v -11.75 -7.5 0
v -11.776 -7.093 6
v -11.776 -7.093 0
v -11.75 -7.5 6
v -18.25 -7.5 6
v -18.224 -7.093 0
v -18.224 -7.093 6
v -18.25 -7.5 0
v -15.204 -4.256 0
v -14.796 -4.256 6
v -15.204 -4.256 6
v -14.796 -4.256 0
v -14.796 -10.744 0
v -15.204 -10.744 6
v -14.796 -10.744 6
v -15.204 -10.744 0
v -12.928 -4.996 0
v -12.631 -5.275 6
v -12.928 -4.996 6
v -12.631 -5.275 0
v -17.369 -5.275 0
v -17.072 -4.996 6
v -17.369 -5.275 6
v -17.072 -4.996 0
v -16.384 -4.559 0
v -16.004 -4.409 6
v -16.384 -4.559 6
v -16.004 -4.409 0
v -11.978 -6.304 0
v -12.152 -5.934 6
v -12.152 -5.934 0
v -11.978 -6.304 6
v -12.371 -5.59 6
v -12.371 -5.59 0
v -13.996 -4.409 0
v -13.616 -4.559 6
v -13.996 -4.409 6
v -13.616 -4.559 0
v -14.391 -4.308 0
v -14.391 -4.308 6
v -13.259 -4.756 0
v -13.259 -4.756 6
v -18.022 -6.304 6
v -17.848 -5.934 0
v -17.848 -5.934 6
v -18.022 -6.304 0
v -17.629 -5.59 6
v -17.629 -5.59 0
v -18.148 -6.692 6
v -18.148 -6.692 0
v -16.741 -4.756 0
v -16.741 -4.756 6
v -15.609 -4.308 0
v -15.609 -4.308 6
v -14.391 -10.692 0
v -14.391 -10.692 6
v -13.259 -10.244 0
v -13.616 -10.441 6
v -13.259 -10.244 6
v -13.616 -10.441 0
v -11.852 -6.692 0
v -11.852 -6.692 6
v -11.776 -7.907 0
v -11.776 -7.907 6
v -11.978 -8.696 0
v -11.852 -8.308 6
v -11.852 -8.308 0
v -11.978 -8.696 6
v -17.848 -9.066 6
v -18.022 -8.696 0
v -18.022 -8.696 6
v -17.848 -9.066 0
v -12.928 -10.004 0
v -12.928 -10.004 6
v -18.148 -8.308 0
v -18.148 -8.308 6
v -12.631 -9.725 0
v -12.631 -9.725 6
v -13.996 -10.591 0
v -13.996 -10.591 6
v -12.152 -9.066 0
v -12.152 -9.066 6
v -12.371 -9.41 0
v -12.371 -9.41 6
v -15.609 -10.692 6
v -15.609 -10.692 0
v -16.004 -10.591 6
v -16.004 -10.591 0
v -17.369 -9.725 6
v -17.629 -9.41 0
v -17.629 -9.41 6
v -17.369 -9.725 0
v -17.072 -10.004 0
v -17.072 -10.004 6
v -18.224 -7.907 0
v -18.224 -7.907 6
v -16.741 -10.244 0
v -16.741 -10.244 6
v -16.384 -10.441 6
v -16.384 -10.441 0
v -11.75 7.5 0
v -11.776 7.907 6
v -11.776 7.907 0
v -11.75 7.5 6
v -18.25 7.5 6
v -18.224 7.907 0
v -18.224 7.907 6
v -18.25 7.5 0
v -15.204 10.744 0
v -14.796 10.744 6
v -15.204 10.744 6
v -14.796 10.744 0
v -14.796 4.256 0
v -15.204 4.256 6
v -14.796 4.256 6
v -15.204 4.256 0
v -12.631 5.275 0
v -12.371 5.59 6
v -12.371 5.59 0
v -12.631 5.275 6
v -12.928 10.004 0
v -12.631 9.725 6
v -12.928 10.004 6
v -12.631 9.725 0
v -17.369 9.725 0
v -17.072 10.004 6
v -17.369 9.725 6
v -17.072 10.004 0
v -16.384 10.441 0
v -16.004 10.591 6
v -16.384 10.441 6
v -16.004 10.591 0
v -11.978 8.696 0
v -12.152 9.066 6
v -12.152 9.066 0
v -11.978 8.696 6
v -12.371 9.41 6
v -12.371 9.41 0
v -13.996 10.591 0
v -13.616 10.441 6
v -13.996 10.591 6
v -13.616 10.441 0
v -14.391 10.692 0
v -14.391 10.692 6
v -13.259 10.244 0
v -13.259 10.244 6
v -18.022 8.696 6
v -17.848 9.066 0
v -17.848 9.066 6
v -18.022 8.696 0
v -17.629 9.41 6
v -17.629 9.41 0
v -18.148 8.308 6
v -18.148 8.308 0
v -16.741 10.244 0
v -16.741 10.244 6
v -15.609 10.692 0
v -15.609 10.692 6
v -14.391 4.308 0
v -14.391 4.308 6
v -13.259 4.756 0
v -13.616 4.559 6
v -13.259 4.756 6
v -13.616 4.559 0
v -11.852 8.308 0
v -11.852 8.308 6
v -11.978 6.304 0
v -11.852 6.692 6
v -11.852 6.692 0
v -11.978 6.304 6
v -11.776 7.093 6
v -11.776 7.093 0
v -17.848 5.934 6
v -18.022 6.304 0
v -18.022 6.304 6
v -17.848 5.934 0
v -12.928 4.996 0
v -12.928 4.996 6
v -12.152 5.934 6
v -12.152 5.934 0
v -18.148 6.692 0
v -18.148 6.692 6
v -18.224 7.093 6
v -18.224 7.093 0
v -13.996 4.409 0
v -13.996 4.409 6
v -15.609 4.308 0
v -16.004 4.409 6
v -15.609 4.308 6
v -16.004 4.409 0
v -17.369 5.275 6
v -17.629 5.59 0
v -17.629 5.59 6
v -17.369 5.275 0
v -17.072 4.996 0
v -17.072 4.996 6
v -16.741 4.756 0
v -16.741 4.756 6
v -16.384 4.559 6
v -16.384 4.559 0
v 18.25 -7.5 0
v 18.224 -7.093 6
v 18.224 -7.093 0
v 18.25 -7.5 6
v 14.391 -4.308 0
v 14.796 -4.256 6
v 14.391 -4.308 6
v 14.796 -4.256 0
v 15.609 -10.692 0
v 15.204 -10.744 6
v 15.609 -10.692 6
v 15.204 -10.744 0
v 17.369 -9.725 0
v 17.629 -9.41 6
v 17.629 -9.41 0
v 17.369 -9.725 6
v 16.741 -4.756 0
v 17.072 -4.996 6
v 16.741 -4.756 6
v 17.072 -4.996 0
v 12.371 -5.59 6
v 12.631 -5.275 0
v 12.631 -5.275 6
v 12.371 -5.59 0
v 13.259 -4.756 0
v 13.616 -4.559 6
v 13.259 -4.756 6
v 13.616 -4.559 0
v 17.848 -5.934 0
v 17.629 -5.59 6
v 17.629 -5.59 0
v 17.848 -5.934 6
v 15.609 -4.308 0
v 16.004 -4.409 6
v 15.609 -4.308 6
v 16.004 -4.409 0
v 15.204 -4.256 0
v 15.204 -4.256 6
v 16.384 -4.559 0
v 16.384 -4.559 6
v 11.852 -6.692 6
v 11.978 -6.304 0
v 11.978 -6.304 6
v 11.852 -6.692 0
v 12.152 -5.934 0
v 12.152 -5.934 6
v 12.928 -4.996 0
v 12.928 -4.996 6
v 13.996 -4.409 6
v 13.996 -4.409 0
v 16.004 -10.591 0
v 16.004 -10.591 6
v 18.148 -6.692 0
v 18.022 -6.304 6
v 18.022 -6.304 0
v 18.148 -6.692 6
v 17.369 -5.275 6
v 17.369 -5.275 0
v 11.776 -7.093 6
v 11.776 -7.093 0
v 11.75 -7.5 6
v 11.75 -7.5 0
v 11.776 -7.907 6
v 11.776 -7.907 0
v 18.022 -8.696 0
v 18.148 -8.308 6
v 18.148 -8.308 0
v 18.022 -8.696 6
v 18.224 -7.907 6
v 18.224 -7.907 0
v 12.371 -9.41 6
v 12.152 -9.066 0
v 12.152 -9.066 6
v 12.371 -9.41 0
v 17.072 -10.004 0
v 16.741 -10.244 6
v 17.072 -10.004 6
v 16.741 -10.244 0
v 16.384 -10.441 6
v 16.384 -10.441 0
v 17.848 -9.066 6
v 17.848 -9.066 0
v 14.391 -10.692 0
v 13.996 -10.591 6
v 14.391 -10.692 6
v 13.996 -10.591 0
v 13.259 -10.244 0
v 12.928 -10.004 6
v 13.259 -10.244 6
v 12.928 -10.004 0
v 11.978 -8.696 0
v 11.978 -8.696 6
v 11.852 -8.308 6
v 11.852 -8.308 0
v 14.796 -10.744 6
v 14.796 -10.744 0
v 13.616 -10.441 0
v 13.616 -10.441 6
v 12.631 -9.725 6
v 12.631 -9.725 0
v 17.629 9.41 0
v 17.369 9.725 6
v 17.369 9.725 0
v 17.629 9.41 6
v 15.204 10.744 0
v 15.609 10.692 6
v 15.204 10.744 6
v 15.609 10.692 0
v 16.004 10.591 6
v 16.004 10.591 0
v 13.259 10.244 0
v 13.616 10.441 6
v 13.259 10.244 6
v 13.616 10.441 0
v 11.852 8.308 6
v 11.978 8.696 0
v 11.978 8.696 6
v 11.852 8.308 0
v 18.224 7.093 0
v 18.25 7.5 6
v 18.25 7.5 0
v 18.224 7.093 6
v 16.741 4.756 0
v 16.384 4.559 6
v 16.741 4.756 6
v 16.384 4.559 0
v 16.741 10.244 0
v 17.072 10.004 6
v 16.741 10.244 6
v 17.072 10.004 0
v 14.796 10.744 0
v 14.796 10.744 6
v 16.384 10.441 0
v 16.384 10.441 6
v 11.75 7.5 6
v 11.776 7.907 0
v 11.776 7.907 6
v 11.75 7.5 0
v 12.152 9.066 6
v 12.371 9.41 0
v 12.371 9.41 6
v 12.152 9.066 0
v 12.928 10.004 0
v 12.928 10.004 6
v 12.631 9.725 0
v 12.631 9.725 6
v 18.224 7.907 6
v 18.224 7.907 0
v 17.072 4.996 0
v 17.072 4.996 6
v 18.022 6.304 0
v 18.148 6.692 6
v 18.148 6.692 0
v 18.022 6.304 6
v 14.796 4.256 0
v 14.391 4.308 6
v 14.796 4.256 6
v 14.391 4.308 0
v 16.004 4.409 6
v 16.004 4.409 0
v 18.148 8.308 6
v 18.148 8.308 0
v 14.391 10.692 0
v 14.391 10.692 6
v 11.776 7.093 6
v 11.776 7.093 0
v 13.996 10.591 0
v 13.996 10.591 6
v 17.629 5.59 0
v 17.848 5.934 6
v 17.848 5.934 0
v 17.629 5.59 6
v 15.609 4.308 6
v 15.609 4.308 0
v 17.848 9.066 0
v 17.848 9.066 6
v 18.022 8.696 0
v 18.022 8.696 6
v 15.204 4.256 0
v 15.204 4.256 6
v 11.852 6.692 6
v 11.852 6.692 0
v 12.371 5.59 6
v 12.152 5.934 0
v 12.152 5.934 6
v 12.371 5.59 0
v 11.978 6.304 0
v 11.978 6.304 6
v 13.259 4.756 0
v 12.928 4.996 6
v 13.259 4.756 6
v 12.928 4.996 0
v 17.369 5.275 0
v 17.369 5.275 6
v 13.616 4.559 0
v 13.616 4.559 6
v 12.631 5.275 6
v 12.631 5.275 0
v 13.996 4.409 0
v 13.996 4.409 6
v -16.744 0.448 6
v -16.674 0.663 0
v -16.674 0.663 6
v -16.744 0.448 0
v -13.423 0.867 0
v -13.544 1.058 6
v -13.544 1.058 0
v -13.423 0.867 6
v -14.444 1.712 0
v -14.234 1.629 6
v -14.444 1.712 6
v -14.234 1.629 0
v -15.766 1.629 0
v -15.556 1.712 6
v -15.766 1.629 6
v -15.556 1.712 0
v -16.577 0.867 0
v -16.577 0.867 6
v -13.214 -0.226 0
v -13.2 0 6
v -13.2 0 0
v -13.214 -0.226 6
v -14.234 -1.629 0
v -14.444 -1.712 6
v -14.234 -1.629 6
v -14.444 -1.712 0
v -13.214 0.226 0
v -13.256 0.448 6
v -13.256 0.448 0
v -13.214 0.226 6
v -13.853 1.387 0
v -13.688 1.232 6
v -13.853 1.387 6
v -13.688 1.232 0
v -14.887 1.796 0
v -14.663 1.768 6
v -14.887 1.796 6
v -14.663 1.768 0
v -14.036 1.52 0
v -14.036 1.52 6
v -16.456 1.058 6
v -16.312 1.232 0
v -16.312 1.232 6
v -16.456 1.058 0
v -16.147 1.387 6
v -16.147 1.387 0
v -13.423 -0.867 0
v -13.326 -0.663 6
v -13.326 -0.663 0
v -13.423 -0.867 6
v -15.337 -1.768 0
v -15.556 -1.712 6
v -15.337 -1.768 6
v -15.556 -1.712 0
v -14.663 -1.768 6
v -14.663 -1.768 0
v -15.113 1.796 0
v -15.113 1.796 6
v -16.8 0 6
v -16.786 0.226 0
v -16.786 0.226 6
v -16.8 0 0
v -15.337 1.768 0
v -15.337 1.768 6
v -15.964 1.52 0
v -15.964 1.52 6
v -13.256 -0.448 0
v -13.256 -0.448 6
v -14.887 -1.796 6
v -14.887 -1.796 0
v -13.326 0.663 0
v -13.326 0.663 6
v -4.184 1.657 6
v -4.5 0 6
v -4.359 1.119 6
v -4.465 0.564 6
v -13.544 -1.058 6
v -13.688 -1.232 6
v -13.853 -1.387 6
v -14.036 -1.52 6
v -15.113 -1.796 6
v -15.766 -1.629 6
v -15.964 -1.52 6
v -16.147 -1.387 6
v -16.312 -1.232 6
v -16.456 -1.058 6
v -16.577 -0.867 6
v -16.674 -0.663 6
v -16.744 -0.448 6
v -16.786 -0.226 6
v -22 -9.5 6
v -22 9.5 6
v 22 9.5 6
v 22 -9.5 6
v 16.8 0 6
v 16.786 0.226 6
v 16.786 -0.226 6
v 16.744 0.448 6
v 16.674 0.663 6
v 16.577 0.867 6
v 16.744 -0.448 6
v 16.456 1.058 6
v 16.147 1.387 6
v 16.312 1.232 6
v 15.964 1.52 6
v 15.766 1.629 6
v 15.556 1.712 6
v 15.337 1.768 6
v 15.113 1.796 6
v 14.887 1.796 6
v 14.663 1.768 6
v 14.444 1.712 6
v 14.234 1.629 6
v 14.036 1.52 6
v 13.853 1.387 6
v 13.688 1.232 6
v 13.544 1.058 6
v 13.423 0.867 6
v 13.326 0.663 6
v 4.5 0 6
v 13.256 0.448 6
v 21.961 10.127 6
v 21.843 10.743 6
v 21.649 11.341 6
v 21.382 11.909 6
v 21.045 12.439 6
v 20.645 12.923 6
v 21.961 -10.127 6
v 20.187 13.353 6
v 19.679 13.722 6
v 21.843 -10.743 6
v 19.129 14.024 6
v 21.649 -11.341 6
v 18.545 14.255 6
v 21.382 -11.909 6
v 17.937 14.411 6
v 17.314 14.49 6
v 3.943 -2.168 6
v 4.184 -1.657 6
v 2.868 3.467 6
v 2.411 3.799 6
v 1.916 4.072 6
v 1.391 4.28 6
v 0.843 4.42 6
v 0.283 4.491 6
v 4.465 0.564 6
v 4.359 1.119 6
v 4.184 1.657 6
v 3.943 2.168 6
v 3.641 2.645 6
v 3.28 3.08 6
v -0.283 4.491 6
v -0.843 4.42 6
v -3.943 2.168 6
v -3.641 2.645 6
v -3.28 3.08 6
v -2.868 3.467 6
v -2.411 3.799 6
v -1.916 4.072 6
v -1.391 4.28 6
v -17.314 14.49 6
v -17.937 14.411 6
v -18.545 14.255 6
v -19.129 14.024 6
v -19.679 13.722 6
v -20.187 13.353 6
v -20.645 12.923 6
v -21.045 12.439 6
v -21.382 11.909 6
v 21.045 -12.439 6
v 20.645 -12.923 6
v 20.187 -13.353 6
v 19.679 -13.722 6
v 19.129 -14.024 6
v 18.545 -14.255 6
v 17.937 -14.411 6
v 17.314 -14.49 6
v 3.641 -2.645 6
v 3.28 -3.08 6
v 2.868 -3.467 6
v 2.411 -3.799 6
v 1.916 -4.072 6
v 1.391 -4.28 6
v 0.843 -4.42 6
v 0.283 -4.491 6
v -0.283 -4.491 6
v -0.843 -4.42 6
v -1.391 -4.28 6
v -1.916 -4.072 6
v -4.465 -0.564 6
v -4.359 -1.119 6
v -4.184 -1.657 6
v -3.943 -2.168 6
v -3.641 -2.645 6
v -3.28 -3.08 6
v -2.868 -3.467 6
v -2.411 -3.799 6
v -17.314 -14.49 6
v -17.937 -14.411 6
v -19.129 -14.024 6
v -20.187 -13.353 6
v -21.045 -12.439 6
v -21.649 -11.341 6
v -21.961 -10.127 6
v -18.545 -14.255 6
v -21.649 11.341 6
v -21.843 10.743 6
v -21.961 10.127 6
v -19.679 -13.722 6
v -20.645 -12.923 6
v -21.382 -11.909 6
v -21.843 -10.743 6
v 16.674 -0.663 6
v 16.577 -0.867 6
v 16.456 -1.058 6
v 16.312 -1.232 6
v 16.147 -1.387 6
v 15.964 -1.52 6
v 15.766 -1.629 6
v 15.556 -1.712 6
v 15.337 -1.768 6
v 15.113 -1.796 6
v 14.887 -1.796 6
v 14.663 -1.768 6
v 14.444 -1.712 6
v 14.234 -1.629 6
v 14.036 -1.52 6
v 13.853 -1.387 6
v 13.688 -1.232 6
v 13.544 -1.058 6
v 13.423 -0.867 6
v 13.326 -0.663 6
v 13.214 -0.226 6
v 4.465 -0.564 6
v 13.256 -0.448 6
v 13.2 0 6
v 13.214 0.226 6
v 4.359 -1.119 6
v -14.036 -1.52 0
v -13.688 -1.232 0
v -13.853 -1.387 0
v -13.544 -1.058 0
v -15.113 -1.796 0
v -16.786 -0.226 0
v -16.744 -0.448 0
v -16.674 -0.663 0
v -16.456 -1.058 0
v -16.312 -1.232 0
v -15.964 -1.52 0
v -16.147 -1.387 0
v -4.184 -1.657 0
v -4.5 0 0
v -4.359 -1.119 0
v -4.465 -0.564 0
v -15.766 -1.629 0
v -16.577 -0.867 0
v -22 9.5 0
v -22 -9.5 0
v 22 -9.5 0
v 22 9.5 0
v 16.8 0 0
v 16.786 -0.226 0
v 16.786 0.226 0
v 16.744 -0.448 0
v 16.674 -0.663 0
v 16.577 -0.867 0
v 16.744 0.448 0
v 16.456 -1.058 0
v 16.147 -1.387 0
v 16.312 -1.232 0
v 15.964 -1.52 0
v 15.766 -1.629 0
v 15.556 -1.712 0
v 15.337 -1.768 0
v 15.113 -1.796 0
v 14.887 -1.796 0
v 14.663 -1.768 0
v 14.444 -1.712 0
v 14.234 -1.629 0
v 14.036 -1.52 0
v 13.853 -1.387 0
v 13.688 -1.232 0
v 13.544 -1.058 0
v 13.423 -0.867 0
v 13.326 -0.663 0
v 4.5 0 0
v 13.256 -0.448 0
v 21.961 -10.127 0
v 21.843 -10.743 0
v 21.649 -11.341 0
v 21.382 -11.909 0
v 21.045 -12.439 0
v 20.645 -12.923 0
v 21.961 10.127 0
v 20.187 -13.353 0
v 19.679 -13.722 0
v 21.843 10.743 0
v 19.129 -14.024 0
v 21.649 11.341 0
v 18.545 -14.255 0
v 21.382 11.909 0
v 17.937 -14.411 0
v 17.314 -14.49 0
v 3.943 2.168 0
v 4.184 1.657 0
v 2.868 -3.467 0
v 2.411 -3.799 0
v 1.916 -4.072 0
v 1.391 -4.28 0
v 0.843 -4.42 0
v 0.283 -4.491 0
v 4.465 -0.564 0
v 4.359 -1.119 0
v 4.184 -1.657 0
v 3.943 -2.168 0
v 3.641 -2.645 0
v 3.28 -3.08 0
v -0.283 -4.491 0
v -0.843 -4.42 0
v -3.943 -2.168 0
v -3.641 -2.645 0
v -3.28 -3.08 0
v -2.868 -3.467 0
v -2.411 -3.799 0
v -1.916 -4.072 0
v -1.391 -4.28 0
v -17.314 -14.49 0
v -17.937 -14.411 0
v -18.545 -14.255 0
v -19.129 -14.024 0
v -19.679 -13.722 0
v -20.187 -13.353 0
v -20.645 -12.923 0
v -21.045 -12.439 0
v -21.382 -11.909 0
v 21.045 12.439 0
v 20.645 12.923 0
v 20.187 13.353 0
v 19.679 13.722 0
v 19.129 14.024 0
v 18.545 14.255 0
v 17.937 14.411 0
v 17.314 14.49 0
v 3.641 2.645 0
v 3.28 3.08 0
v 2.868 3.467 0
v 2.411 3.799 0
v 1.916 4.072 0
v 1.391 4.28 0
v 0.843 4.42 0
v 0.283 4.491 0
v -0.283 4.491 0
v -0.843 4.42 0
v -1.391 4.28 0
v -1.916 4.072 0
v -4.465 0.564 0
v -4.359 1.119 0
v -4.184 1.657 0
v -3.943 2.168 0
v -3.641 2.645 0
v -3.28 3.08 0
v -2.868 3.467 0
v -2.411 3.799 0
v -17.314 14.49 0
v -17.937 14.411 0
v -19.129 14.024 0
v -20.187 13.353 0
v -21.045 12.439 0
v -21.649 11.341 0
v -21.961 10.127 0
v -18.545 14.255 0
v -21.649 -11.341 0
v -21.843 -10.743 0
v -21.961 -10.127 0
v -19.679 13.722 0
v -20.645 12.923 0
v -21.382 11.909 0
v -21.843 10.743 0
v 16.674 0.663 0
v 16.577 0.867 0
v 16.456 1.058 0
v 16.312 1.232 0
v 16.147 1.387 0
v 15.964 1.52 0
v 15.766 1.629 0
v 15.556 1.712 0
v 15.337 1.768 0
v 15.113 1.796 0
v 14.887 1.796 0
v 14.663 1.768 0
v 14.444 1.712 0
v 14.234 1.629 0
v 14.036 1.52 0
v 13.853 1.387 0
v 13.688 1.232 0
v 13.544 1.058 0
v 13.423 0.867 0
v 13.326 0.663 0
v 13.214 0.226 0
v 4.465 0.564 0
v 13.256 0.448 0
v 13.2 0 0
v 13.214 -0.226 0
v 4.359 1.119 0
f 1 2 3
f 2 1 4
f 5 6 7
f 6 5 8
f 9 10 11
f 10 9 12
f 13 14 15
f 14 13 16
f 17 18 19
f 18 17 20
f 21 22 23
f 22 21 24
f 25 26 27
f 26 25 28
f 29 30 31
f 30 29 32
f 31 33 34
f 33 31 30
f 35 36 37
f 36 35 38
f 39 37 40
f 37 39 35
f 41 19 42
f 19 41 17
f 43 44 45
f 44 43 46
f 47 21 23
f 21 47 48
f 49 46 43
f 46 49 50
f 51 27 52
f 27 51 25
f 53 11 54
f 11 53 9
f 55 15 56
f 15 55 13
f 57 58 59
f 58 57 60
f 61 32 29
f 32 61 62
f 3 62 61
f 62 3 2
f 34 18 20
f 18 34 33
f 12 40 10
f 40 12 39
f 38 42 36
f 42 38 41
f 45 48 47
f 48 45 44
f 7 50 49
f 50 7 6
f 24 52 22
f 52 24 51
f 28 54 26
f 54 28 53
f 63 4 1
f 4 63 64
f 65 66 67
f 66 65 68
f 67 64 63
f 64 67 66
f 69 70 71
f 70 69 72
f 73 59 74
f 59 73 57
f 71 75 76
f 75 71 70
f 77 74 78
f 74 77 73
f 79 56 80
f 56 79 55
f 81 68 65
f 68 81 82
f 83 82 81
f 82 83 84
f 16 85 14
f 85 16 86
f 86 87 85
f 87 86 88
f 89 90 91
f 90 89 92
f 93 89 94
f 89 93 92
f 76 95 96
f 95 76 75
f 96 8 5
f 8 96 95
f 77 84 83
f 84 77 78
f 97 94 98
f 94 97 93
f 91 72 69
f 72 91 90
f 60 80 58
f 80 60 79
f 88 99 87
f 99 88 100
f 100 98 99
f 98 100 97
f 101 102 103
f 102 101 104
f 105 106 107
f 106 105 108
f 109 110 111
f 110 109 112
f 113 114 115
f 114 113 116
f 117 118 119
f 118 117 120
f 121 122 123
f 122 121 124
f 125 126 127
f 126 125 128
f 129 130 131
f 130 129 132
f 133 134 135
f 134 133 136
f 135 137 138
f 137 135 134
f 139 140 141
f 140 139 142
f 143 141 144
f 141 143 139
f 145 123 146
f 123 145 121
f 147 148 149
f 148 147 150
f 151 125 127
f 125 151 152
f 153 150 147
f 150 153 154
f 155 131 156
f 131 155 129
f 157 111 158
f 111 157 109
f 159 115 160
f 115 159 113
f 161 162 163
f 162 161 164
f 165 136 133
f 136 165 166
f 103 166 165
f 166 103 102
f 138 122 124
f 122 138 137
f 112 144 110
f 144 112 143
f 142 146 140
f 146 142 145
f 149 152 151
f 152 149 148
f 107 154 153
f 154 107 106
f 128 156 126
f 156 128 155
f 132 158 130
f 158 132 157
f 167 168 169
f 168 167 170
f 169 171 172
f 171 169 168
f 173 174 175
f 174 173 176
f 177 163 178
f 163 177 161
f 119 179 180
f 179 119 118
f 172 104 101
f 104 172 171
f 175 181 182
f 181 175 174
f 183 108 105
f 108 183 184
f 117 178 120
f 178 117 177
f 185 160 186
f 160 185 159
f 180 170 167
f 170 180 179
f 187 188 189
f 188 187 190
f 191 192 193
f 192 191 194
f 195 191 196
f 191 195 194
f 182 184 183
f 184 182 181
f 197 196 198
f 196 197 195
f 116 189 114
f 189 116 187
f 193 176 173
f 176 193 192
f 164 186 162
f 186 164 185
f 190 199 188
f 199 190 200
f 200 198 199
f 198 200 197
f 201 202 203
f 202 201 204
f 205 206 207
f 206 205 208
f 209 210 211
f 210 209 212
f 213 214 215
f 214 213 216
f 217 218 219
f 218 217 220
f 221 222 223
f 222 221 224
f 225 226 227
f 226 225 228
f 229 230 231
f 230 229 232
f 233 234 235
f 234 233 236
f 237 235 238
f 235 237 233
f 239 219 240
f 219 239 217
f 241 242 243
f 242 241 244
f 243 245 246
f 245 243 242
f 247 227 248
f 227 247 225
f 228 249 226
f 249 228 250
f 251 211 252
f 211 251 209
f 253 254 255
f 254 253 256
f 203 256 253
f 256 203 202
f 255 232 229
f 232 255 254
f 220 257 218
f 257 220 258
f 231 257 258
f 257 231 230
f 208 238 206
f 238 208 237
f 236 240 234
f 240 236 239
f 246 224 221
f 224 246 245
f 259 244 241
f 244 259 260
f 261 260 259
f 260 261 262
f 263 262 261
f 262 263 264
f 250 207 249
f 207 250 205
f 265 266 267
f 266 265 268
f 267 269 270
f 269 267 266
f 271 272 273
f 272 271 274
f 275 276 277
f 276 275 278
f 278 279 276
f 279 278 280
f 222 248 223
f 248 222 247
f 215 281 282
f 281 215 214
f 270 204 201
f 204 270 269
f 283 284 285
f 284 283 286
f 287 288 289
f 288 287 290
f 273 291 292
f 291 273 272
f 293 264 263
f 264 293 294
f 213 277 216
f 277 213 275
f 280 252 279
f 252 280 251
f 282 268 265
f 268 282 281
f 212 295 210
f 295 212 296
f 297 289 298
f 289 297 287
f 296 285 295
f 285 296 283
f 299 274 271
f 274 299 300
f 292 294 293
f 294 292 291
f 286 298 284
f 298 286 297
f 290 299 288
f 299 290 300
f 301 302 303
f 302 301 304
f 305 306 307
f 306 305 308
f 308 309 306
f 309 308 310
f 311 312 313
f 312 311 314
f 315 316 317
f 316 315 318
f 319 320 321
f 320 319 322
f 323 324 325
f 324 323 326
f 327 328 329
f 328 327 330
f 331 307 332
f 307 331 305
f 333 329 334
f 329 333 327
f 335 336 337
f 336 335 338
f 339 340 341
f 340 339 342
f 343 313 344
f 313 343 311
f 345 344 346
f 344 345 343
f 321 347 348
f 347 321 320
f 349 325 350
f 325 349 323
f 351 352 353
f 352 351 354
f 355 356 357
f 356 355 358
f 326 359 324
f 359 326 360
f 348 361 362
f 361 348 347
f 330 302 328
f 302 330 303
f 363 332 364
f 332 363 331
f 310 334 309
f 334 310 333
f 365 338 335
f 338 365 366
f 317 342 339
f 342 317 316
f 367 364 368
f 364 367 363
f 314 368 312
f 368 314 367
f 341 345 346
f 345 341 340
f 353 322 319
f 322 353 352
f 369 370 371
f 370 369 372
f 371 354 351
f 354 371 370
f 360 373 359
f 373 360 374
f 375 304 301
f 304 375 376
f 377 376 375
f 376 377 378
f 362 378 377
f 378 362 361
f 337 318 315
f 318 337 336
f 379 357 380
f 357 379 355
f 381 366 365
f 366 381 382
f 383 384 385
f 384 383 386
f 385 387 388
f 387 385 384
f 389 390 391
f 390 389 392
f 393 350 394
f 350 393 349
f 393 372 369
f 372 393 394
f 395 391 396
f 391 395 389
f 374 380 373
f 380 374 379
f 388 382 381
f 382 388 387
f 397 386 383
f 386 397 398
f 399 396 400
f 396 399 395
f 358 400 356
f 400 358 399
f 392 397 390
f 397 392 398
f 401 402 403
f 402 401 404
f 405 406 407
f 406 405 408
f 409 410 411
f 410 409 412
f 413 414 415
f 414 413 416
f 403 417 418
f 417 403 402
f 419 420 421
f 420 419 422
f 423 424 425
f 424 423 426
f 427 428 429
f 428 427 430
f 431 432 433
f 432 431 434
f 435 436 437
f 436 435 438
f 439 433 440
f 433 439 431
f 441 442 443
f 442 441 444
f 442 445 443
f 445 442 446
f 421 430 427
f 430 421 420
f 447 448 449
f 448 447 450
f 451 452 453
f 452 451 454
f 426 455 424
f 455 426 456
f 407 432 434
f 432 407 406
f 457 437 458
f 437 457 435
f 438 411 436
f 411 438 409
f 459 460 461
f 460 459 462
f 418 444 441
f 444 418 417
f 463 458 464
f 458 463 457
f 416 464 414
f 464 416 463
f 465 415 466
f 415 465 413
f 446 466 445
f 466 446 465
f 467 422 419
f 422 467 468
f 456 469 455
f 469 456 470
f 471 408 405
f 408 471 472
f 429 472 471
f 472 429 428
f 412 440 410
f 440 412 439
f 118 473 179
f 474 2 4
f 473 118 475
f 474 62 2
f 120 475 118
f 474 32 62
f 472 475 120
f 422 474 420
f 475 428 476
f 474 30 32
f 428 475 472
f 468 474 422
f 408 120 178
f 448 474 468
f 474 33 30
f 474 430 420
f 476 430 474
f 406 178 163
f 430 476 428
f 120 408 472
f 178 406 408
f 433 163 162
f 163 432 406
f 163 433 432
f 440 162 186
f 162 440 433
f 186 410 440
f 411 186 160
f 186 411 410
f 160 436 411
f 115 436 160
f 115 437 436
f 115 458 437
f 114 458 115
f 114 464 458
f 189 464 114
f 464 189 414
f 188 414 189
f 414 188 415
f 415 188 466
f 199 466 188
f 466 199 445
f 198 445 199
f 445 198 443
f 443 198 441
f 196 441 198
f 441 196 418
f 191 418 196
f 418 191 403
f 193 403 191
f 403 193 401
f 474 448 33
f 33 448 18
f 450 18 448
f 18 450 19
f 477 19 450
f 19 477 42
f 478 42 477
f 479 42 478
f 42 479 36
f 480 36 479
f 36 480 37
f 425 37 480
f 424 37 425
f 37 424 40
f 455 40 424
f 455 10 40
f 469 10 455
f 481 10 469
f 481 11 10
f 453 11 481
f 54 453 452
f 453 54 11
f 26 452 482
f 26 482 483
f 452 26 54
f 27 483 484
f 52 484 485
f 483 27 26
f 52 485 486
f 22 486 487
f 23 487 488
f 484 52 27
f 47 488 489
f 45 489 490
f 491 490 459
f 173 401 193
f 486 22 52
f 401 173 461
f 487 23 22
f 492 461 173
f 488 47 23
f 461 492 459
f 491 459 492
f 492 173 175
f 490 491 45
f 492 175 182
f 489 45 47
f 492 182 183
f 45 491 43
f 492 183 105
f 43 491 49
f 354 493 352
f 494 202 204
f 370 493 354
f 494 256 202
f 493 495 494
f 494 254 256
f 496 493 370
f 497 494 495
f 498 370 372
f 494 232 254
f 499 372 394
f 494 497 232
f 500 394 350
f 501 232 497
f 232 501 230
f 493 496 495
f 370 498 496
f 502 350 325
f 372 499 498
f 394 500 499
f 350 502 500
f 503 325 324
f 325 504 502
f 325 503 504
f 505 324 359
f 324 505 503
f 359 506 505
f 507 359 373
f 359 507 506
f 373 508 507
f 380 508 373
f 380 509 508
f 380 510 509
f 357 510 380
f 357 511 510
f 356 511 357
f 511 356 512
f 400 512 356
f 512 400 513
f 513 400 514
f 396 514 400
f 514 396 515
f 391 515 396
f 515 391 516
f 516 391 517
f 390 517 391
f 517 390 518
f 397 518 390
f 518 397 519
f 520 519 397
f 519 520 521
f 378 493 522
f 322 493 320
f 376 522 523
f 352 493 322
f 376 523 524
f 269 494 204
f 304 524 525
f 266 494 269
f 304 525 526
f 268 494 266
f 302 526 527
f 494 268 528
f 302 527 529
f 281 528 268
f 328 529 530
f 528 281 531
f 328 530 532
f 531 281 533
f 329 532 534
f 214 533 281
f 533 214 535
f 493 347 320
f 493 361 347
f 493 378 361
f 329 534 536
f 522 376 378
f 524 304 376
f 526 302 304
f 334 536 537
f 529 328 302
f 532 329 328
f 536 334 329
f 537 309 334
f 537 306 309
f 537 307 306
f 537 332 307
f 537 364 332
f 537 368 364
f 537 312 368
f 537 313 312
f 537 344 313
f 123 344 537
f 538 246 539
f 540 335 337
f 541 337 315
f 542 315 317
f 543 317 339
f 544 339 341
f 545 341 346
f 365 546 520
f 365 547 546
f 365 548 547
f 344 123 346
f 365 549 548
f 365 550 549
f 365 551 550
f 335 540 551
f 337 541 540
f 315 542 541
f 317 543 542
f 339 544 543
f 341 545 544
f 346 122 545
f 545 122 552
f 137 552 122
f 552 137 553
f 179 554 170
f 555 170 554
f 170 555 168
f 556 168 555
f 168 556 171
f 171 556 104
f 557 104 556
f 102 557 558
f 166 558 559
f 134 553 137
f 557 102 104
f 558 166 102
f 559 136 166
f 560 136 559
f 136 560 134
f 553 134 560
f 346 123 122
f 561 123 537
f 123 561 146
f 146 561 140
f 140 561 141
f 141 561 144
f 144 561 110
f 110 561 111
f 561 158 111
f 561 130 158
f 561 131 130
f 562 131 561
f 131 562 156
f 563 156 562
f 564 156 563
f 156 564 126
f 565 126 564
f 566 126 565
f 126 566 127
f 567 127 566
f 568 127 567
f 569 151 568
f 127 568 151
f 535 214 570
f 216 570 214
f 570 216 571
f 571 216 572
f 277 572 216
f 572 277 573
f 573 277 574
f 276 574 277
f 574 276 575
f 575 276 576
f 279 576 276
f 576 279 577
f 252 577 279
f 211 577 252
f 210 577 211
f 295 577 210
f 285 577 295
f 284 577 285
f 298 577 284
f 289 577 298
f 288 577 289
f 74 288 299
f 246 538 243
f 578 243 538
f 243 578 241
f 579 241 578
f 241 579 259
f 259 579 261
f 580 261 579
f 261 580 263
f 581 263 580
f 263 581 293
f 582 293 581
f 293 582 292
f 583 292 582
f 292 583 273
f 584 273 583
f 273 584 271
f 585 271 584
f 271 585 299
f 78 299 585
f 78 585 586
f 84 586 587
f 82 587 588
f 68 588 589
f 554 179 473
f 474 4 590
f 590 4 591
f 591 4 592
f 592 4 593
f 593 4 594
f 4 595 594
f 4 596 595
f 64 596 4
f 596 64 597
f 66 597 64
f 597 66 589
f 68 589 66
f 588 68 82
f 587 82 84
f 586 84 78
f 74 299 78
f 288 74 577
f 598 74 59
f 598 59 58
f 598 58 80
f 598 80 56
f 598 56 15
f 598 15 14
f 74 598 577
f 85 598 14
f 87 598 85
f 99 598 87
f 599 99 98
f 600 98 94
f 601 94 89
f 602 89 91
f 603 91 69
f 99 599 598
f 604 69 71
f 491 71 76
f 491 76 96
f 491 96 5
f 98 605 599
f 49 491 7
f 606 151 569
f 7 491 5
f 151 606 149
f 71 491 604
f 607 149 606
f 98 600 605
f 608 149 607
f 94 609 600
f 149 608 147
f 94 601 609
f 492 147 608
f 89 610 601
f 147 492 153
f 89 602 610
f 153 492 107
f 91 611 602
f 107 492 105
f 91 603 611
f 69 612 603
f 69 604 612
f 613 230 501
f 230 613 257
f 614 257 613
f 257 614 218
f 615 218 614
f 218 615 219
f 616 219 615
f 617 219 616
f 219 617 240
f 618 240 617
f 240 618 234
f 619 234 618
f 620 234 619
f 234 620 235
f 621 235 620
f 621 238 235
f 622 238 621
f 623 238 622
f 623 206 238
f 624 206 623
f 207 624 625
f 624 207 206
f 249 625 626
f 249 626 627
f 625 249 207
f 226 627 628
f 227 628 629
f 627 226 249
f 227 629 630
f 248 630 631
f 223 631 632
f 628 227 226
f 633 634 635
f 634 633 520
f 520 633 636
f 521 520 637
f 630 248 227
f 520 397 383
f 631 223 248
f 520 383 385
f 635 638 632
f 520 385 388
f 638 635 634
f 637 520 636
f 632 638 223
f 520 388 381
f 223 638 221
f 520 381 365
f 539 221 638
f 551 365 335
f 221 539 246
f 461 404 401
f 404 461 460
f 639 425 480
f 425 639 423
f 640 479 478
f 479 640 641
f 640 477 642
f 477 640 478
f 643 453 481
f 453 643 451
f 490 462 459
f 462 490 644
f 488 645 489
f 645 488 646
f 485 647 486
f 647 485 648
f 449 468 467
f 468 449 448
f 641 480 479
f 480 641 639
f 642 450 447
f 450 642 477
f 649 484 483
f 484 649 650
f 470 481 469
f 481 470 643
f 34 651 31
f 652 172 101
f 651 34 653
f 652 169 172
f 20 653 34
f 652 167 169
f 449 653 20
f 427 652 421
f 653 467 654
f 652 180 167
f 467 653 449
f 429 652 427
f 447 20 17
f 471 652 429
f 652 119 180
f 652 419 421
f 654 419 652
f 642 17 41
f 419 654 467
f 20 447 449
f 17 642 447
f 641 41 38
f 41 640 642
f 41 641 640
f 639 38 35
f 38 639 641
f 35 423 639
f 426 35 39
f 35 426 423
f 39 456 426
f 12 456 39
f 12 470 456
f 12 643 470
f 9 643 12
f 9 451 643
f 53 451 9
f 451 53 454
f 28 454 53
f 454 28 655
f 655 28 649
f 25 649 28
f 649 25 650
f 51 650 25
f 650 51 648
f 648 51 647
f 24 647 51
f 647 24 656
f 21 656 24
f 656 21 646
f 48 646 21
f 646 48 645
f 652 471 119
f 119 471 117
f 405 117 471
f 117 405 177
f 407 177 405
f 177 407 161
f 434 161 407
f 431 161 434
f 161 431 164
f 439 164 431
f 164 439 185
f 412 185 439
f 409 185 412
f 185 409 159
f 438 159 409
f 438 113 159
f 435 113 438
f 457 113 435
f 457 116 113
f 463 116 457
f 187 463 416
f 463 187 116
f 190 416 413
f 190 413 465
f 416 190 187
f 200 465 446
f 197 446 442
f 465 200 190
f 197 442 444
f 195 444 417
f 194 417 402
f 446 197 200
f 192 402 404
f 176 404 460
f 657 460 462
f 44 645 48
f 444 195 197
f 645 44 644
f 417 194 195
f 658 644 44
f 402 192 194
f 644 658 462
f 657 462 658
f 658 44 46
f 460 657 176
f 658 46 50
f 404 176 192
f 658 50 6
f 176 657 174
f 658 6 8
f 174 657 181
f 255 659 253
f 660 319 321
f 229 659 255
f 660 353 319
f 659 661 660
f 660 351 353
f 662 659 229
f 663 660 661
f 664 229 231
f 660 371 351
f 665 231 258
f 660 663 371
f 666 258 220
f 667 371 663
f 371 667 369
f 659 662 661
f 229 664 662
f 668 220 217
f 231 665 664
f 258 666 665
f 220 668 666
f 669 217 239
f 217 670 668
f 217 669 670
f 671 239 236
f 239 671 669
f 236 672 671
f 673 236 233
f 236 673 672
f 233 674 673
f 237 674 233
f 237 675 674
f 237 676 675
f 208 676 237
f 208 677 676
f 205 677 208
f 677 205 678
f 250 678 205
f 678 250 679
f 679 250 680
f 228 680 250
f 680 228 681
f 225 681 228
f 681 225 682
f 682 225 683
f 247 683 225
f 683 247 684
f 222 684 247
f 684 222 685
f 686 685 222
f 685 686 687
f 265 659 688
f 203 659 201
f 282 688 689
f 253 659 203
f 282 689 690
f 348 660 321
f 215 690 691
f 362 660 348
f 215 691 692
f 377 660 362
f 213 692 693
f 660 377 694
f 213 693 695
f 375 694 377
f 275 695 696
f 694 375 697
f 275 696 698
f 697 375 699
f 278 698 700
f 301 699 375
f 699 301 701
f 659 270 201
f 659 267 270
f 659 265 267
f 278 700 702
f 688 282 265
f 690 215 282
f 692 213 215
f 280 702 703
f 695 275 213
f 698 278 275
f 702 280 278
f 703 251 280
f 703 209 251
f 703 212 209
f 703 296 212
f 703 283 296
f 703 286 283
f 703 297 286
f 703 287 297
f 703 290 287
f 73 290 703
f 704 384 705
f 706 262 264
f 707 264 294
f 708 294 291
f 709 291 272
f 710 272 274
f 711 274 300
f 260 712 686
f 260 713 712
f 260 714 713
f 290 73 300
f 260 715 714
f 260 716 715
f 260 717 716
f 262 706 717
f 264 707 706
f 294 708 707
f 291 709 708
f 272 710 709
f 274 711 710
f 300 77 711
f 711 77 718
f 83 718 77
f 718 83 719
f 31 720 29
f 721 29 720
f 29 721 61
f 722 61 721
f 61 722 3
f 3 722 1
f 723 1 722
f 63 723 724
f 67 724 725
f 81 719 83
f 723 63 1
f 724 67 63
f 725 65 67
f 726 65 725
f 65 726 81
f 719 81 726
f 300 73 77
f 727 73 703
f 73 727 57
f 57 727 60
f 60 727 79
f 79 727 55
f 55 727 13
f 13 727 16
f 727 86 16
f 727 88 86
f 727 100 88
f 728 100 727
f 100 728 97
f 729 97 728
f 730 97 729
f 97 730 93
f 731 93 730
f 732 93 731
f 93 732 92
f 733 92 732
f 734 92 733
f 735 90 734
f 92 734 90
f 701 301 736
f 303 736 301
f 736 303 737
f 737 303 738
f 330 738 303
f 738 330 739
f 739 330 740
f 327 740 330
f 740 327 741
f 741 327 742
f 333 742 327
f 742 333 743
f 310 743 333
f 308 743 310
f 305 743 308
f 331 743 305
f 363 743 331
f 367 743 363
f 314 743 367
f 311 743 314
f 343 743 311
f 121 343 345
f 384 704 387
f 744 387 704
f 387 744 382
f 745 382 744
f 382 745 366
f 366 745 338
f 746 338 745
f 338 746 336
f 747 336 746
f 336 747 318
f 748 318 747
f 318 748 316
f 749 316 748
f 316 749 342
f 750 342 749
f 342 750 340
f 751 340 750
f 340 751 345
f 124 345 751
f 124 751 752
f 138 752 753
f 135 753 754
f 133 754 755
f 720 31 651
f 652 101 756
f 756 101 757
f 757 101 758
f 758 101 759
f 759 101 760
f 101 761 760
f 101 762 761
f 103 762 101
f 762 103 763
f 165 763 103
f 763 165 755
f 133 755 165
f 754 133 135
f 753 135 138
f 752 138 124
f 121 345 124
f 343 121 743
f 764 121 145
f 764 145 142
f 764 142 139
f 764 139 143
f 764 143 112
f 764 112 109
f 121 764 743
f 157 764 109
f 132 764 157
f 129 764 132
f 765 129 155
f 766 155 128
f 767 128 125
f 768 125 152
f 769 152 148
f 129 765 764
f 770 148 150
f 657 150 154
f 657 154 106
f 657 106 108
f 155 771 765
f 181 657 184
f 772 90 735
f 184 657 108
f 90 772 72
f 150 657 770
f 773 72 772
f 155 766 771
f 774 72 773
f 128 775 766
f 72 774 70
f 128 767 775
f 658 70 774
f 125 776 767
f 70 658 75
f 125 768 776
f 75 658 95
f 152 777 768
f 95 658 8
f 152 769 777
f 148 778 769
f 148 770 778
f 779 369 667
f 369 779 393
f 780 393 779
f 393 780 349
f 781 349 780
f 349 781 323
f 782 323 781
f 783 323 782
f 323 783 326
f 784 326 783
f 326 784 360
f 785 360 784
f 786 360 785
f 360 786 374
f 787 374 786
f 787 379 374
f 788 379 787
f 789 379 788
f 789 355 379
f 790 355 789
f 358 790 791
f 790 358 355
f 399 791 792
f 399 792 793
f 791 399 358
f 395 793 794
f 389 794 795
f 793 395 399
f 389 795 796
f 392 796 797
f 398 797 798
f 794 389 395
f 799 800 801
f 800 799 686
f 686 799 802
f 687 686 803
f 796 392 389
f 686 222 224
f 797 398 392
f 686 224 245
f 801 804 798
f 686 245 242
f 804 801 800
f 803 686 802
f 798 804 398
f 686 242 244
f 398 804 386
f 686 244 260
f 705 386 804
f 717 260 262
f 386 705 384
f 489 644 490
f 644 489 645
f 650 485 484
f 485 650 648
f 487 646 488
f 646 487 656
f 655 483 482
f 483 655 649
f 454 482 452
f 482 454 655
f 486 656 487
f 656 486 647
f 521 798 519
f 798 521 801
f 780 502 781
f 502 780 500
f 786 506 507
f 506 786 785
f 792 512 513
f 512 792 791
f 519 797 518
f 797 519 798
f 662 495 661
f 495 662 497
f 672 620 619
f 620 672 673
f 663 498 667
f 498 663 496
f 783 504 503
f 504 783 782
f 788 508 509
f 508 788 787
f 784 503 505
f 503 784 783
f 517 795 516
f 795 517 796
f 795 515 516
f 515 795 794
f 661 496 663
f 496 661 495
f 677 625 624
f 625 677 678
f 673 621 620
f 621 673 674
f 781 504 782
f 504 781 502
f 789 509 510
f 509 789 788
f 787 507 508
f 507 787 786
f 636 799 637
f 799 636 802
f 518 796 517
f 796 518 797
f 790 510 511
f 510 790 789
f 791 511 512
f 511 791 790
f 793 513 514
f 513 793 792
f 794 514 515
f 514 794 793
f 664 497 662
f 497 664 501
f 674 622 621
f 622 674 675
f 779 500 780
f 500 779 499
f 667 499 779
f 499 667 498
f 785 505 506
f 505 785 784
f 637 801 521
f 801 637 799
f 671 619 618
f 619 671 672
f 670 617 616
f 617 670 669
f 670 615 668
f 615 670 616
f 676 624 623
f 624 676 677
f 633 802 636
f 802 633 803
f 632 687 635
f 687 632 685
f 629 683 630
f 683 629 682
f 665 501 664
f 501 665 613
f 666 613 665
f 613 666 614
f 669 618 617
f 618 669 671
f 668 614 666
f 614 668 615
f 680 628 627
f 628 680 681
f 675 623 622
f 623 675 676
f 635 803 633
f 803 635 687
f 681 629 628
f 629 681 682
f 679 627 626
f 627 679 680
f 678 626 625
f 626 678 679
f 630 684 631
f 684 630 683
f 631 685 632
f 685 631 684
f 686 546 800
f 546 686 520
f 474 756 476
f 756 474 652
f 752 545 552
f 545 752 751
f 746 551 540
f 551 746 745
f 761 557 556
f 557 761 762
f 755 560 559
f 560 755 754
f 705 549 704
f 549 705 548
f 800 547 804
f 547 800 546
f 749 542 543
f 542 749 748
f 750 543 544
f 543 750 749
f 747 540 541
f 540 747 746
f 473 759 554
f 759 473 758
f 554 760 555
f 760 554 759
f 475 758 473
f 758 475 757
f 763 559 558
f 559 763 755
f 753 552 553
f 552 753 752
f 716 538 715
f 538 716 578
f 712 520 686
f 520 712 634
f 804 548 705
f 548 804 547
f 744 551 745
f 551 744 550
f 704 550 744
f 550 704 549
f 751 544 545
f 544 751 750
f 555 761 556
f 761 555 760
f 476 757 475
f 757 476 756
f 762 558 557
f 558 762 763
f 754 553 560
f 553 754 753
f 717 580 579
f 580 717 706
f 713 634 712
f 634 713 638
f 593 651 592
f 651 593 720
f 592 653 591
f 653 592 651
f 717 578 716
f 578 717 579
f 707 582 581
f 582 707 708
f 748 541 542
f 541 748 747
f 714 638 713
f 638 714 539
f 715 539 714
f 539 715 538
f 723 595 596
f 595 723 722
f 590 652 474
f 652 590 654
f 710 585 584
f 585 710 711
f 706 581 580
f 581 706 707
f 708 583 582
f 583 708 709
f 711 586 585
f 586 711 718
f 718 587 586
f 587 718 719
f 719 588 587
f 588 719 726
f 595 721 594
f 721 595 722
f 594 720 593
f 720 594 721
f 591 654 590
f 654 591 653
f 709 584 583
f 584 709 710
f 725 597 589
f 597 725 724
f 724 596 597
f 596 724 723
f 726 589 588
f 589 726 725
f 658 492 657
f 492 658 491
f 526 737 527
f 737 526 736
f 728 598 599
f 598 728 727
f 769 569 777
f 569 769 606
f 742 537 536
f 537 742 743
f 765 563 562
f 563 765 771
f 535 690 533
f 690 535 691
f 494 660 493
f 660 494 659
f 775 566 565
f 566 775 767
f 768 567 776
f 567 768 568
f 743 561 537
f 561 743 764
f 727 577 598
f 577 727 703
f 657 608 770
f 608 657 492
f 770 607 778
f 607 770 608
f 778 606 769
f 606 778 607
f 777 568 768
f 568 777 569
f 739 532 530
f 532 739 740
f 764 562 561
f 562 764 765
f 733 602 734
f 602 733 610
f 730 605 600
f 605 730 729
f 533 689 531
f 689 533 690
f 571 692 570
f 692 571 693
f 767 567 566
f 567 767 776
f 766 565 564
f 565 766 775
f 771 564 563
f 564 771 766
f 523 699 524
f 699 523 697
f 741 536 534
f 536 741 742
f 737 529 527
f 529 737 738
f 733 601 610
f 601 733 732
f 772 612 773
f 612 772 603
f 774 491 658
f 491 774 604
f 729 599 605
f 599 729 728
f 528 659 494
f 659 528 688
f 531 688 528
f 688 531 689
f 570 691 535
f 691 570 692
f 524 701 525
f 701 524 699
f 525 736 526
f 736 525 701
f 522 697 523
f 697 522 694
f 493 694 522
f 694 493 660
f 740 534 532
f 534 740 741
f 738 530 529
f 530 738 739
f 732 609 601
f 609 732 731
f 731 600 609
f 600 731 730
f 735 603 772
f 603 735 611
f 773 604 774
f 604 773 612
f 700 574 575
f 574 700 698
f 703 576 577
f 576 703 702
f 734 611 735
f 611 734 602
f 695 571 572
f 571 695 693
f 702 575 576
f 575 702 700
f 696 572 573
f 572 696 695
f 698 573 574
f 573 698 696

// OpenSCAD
$fn = 50;


difference() {
	union() {
		hull() {
			translate(v = [-17.0000000000, 9.5000000000, 0]) {
				cylinder(h = 6, r = 5);
			}
			translate(v = [17.0000000000, 9.5000000000, 0]) {
				cylinder(h = 6, r = 5);
			}
			translate(v = [-17.0000000000, -9.5000000000, 0]) {
				cylinder(h = 6, r = 5);
			}
			translate(v = [17.0000000000, -9.5000000000, 0]) {
				cylinder(h = 6, r = 5);
			}
		}
	}
	union() {
		#translate(v = [-15.0000000000, -7.5000000000, 0]) {
			cylinder(h = 6, r = 3.2500000000);
		}
		#translate(v = [-15.0000000000, 7.5000000000, 0]) {
			cylinder(h = 6, r = 3.2500000000);
		}
		#translate(v = [15.0000000000, -7.5000000000, 0]) {
			cylinder(h = 6, r = 3.2500000000);
		}
		#translate(v = [15.0000000000, 7.5000000000, 0]) {
			cylinder(h = 6, r = 3.2500000000);
		}
		#translate(v = [-15.0000000000, -7.5000000000, -100.0000000000]) {
			cylinder(h = 200, r = 3.2500000000);
		}
		#translate(v = [-15.0000000000, 7.5000000000, -100.0000000000]) {
			cylinder(h = 200, r = 3.2500000000);
		}
		#translate(v = [15.0000000000, -7.5000000000, -100.0000000000]) {
			cylinder(h = 200, r = 3.2500000000);
		}
		#translate(v = [15.0000000000, 7.5000000000, -100.0000000000]) {
			cylinder(h = 200, r = 3.2500000000);
		}
		#translate(v = [-15.0000000000, -7.5000000000, 0]) {
			cylinder(h = 6, r = 1.8000000000);
		}
		#translate(v = [-15.0000000000, 0.0000000000, 0]) {
			cylinder(h = 6, r = 1.8000000000);
		}
		#translate(v = [-15.0000000000, 7.5000000000, 0]) {
			cylinder(h = 6, r = 1.8000000000);
		}
		#translate(v = [15.0000000000, -7.5000000000, 0]) {
			cylinder(h = 6, r = 1.8000000000);
		}
		#translate(v = [15.0000000000, 0.0000000000, 0]) {
			cylinder(h = 6, r = 1.8000000000);
		}
		#translate(v = [15.0000000000, 7.5000000000, 0]) {
			cylinder(h = 6, r = 1.8000000000);
		}
		#translate(v = [-15.0000000000, -7.5000000000, 0]) {
			cylinder(h = 6, r = 1.8000000000);
		}
		#translate(v = [-15.0000000000, 0.0000000000, 0]) {
			cylinder(h = 6, r = 1.8000000000);
		}
		#translate(v = [-15.0000000000, 7.5000000000, 0]) {
			cylinder(h = 6, r = 1.8000000000);
		}
		#translate(v = [15.0000000000, -7.5000000000, 0]) {
			cylinder(h = 6, r = 1.8000000000);
		}
		#translate(v = [15.0000000000, 0.0000000000, 0]) {
			cylinder(h = 6, r = 1.8000000000);
		}
		#translate(v = [15.0000000000, 7.5000000000, 0]) {
			cylinder(h = 6, r = 1.8000000000);
		}
		#translate(v = [-15.0000000000, -7.5000000000, 0]) {
			cylinder(h = 6, r = 1.8000000000);
		}
		#translate(v = [-15.0000000000, 0.0000000000, 0]) {
			cylinder(h = 6, r = 1.8000000000);
		}
		#translate(v = [-15.0000000000, 7.5000000000, 0]) {
			cylinder(h = 6, r = 1.8000000000);
		}
		#translate(v = [15.0000000000, -7.5000000000, 0]) {
			cylinder(h = 6, r = 1.8000000000);
		}
		#translate(v = [15.0000000000, 0.0000000000, 0]) {
			cylinder(h = 6, r = 1.8000000000);
		}
		#translate(v = [15.0000000000, 7.5000000000, 0]) {
			cylinder(h = 6, r = 1.8000000000);
		}
		#cylinder(h = 6, r = 4.5000000000);
	}
}
